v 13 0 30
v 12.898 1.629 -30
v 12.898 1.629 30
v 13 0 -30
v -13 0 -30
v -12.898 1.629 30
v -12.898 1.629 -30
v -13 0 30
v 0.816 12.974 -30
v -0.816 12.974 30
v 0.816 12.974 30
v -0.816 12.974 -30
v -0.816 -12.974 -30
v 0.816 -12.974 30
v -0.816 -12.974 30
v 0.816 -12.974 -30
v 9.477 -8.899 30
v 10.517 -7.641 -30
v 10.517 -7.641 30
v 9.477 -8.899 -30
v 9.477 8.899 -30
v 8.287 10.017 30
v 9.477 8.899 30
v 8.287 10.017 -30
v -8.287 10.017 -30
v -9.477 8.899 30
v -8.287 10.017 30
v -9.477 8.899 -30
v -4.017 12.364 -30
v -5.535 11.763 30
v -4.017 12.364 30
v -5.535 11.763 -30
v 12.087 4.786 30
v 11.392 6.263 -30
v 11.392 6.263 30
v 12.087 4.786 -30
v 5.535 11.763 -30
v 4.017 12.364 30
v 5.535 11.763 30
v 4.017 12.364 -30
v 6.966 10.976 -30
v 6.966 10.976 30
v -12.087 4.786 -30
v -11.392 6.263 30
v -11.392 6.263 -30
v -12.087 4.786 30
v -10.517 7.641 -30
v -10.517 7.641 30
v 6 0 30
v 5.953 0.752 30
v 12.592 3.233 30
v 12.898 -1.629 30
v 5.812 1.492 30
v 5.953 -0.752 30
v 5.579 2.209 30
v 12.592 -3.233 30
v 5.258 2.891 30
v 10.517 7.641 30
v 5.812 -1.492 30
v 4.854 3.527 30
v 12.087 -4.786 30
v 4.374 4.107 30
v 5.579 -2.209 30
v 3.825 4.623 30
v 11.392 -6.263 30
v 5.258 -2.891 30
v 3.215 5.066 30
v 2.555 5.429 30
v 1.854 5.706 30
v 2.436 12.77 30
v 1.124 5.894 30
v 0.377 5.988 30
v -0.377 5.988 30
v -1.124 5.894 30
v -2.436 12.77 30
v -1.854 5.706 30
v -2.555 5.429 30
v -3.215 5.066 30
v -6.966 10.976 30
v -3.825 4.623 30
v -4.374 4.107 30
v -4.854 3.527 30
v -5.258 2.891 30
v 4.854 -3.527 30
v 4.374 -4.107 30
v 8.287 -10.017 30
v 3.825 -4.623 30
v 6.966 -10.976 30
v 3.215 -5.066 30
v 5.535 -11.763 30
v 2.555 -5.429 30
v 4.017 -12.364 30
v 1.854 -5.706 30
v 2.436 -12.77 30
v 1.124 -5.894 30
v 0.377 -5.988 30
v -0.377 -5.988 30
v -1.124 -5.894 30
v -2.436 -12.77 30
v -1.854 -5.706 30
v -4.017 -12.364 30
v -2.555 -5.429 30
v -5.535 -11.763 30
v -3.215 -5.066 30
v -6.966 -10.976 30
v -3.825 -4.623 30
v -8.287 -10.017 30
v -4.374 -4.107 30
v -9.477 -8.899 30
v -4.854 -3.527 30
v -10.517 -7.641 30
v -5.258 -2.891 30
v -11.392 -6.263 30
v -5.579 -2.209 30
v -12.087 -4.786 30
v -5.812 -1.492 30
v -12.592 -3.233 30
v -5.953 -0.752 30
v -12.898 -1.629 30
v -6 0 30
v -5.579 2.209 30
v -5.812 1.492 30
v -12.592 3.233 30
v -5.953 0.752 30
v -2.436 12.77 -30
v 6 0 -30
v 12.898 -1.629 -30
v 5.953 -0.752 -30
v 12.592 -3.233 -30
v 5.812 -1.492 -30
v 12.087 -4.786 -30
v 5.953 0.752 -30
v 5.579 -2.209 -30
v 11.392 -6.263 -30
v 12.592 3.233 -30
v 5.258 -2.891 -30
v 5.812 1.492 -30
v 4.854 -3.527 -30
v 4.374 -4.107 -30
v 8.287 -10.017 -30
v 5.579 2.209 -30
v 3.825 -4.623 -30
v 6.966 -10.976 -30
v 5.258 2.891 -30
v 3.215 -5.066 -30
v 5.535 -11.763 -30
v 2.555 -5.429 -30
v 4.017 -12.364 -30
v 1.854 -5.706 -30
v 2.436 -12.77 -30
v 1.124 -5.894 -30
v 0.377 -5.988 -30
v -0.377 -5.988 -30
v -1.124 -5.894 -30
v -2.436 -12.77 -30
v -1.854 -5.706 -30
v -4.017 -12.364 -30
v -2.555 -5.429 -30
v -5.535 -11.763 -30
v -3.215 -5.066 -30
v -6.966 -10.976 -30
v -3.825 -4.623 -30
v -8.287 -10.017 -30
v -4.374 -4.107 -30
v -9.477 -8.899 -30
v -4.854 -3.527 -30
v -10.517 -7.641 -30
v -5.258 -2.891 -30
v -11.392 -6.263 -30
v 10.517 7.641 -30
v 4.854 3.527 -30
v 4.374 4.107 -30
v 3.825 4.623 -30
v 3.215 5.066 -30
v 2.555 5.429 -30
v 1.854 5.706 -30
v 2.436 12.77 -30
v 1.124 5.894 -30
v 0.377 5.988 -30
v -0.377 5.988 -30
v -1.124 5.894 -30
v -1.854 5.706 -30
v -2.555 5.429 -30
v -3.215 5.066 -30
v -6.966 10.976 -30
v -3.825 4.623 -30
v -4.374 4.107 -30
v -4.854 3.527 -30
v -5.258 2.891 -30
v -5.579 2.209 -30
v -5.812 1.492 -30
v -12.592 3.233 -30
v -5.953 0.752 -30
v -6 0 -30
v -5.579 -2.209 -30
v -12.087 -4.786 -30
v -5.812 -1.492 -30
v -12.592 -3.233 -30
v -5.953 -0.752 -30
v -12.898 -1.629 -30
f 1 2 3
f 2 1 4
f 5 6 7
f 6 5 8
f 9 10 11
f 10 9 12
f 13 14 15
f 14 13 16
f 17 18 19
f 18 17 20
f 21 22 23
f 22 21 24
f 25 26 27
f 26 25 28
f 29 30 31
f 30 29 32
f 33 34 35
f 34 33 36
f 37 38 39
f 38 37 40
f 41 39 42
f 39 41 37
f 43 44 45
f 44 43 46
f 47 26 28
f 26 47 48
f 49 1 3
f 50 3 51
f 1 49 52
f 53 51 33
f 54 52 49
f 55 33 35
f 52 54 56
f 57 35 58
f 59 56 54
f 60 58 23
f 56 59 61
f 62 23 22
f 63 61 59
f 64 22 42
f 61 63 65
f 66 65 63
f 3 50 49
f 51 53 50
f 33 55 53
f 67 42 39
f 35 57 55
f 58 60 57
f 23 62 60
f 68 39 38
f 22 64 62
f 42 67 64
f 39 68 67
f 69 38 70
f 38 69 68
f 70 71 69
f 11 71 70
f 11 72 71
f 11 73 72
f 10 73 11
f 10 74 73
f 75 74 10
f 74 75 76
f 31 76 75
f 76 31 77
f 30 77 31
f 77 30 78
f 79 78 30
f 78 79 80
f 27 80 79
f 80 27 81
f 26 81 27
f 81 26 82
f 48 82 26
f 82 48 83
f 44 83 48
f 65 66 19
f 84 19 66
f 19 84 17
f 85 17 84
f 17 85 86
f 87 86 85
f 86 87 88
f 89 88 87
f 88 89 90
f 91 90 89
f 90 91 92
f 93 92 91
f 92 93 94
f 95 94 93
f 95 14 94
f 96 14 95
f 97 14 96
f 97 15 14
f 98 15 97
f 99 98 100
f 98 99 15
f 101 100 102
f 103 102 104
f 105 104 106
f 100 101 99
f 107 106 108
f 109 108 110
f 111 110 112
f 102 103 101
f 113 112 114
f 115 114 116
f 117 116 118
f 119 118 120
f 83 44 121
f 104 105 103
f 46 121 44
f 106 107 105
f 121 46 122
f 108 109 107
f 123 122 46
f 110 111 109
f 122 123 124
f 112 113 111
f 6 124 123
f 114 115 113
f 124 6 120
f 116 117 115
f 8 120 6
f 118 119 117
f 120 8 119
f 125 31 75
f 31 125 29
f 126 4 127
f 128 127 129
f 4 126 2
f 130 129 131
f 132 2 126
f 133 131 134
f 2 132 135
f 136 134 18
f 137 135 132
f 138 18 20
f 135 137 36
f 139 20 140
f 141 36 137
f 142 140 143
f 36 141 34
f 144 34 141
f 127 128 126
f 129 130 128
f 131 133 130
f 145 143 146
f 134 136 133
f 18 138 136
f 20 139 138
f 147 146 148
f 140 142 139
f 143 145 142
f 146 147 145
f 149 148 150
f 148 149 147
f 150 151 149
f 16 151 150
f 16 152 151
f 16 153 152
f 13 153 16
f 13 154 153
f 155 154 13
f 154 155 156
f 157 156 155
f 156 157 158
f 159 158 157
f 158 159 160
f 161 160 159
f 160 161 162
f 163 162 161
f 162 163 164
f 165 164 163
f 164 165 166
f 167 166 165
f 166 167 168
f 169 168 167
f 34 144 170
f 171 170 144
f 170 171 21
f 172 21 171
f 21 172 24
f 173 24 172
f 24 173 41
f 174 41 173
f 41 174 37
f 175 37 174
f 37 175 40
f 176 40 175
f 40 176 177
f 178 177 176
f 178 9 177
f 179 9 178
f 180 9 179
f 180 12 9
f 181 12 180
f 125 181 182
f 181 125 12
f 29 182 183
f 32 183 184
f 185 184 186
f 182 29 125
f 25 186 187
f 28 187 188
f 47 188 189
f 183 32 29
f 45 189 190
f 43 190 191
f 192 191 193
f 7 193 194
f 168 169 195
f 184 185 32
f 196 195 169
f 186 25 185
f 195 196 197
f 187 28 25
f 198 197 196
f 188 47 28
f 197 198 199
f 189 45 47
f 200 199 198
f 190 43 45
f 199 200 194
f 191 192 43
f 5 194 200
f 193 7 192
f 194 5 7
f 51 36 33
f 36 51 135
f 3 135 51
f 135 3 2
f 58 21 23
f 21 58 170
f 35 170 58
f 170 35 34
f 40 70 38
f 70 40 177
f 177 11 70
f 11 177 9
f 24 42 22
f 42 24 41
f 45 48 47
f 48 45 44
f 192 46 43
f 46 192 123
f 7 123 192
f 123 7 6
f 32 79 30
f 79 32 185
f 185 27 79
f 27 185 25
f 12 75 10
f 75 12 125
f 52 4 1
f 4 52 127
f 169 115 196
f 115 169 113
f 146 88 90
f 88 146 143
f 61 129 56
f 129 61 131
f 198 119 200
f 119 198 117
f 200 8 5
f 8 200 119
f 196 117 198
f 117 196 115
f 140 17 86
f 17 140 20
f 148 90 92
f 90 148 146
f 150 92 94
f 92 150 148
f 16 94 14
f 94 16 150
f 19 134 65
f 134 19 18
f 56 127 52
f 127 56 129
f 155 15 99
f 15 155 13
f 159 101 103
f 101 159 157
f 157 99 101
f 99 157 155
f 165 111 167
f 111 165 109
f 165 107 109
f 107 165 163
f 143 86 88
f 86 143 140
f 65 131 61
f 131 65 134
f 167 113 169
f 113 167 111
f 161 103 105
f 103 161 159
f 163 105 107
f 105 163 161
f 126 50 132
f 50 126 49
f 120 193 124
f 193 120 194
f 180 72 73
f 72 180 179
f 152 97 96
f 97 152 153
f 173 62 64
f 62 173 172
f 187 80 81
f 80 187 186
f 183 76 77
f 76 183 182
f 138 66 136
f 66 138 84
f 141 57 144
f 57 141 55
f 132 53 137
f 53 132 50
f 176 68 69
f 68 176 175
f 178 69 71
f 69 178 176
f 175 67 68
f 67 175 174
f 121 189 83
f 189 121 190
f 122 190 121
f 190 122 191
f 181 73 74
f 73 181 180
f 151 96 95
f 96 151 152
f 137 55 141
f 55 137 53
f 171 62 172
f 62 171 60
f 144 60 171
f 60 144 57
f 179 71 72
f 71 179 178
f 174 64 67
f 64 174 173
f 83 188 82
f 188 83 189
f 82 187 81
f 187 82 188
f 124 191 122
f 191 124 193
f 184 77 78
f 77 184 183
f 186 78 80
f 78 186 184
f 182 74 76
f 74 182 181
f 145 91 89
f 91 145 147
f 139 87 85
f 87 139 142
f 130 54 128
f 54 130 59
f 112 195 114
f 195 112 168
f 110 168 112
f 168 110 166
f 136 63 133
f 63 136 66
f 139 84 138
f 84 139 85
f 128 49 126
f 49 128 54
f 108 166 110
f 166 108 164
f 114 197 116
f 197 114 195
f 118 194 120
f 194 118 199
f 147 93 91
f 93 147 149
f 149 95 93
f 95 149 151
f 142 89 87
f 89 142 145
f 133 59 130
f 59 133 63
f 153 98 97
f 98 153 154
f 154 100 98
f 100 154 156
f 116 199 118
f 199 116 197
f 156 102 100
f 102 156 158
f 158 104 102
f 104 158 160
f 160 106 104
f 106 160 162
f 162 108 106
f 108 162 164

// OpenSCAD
$fn = 50;


difference() {
	union() {
		translate(v = [0, 0, -30.0000000000]) {
			cylinder(h = 60, r = 13.0000000000);
		}
	}
	union() {
		translate(v = [0, 0, -100.0000000000]) {
			cylinder(h = 200, r = 6);
		}
	}
}
